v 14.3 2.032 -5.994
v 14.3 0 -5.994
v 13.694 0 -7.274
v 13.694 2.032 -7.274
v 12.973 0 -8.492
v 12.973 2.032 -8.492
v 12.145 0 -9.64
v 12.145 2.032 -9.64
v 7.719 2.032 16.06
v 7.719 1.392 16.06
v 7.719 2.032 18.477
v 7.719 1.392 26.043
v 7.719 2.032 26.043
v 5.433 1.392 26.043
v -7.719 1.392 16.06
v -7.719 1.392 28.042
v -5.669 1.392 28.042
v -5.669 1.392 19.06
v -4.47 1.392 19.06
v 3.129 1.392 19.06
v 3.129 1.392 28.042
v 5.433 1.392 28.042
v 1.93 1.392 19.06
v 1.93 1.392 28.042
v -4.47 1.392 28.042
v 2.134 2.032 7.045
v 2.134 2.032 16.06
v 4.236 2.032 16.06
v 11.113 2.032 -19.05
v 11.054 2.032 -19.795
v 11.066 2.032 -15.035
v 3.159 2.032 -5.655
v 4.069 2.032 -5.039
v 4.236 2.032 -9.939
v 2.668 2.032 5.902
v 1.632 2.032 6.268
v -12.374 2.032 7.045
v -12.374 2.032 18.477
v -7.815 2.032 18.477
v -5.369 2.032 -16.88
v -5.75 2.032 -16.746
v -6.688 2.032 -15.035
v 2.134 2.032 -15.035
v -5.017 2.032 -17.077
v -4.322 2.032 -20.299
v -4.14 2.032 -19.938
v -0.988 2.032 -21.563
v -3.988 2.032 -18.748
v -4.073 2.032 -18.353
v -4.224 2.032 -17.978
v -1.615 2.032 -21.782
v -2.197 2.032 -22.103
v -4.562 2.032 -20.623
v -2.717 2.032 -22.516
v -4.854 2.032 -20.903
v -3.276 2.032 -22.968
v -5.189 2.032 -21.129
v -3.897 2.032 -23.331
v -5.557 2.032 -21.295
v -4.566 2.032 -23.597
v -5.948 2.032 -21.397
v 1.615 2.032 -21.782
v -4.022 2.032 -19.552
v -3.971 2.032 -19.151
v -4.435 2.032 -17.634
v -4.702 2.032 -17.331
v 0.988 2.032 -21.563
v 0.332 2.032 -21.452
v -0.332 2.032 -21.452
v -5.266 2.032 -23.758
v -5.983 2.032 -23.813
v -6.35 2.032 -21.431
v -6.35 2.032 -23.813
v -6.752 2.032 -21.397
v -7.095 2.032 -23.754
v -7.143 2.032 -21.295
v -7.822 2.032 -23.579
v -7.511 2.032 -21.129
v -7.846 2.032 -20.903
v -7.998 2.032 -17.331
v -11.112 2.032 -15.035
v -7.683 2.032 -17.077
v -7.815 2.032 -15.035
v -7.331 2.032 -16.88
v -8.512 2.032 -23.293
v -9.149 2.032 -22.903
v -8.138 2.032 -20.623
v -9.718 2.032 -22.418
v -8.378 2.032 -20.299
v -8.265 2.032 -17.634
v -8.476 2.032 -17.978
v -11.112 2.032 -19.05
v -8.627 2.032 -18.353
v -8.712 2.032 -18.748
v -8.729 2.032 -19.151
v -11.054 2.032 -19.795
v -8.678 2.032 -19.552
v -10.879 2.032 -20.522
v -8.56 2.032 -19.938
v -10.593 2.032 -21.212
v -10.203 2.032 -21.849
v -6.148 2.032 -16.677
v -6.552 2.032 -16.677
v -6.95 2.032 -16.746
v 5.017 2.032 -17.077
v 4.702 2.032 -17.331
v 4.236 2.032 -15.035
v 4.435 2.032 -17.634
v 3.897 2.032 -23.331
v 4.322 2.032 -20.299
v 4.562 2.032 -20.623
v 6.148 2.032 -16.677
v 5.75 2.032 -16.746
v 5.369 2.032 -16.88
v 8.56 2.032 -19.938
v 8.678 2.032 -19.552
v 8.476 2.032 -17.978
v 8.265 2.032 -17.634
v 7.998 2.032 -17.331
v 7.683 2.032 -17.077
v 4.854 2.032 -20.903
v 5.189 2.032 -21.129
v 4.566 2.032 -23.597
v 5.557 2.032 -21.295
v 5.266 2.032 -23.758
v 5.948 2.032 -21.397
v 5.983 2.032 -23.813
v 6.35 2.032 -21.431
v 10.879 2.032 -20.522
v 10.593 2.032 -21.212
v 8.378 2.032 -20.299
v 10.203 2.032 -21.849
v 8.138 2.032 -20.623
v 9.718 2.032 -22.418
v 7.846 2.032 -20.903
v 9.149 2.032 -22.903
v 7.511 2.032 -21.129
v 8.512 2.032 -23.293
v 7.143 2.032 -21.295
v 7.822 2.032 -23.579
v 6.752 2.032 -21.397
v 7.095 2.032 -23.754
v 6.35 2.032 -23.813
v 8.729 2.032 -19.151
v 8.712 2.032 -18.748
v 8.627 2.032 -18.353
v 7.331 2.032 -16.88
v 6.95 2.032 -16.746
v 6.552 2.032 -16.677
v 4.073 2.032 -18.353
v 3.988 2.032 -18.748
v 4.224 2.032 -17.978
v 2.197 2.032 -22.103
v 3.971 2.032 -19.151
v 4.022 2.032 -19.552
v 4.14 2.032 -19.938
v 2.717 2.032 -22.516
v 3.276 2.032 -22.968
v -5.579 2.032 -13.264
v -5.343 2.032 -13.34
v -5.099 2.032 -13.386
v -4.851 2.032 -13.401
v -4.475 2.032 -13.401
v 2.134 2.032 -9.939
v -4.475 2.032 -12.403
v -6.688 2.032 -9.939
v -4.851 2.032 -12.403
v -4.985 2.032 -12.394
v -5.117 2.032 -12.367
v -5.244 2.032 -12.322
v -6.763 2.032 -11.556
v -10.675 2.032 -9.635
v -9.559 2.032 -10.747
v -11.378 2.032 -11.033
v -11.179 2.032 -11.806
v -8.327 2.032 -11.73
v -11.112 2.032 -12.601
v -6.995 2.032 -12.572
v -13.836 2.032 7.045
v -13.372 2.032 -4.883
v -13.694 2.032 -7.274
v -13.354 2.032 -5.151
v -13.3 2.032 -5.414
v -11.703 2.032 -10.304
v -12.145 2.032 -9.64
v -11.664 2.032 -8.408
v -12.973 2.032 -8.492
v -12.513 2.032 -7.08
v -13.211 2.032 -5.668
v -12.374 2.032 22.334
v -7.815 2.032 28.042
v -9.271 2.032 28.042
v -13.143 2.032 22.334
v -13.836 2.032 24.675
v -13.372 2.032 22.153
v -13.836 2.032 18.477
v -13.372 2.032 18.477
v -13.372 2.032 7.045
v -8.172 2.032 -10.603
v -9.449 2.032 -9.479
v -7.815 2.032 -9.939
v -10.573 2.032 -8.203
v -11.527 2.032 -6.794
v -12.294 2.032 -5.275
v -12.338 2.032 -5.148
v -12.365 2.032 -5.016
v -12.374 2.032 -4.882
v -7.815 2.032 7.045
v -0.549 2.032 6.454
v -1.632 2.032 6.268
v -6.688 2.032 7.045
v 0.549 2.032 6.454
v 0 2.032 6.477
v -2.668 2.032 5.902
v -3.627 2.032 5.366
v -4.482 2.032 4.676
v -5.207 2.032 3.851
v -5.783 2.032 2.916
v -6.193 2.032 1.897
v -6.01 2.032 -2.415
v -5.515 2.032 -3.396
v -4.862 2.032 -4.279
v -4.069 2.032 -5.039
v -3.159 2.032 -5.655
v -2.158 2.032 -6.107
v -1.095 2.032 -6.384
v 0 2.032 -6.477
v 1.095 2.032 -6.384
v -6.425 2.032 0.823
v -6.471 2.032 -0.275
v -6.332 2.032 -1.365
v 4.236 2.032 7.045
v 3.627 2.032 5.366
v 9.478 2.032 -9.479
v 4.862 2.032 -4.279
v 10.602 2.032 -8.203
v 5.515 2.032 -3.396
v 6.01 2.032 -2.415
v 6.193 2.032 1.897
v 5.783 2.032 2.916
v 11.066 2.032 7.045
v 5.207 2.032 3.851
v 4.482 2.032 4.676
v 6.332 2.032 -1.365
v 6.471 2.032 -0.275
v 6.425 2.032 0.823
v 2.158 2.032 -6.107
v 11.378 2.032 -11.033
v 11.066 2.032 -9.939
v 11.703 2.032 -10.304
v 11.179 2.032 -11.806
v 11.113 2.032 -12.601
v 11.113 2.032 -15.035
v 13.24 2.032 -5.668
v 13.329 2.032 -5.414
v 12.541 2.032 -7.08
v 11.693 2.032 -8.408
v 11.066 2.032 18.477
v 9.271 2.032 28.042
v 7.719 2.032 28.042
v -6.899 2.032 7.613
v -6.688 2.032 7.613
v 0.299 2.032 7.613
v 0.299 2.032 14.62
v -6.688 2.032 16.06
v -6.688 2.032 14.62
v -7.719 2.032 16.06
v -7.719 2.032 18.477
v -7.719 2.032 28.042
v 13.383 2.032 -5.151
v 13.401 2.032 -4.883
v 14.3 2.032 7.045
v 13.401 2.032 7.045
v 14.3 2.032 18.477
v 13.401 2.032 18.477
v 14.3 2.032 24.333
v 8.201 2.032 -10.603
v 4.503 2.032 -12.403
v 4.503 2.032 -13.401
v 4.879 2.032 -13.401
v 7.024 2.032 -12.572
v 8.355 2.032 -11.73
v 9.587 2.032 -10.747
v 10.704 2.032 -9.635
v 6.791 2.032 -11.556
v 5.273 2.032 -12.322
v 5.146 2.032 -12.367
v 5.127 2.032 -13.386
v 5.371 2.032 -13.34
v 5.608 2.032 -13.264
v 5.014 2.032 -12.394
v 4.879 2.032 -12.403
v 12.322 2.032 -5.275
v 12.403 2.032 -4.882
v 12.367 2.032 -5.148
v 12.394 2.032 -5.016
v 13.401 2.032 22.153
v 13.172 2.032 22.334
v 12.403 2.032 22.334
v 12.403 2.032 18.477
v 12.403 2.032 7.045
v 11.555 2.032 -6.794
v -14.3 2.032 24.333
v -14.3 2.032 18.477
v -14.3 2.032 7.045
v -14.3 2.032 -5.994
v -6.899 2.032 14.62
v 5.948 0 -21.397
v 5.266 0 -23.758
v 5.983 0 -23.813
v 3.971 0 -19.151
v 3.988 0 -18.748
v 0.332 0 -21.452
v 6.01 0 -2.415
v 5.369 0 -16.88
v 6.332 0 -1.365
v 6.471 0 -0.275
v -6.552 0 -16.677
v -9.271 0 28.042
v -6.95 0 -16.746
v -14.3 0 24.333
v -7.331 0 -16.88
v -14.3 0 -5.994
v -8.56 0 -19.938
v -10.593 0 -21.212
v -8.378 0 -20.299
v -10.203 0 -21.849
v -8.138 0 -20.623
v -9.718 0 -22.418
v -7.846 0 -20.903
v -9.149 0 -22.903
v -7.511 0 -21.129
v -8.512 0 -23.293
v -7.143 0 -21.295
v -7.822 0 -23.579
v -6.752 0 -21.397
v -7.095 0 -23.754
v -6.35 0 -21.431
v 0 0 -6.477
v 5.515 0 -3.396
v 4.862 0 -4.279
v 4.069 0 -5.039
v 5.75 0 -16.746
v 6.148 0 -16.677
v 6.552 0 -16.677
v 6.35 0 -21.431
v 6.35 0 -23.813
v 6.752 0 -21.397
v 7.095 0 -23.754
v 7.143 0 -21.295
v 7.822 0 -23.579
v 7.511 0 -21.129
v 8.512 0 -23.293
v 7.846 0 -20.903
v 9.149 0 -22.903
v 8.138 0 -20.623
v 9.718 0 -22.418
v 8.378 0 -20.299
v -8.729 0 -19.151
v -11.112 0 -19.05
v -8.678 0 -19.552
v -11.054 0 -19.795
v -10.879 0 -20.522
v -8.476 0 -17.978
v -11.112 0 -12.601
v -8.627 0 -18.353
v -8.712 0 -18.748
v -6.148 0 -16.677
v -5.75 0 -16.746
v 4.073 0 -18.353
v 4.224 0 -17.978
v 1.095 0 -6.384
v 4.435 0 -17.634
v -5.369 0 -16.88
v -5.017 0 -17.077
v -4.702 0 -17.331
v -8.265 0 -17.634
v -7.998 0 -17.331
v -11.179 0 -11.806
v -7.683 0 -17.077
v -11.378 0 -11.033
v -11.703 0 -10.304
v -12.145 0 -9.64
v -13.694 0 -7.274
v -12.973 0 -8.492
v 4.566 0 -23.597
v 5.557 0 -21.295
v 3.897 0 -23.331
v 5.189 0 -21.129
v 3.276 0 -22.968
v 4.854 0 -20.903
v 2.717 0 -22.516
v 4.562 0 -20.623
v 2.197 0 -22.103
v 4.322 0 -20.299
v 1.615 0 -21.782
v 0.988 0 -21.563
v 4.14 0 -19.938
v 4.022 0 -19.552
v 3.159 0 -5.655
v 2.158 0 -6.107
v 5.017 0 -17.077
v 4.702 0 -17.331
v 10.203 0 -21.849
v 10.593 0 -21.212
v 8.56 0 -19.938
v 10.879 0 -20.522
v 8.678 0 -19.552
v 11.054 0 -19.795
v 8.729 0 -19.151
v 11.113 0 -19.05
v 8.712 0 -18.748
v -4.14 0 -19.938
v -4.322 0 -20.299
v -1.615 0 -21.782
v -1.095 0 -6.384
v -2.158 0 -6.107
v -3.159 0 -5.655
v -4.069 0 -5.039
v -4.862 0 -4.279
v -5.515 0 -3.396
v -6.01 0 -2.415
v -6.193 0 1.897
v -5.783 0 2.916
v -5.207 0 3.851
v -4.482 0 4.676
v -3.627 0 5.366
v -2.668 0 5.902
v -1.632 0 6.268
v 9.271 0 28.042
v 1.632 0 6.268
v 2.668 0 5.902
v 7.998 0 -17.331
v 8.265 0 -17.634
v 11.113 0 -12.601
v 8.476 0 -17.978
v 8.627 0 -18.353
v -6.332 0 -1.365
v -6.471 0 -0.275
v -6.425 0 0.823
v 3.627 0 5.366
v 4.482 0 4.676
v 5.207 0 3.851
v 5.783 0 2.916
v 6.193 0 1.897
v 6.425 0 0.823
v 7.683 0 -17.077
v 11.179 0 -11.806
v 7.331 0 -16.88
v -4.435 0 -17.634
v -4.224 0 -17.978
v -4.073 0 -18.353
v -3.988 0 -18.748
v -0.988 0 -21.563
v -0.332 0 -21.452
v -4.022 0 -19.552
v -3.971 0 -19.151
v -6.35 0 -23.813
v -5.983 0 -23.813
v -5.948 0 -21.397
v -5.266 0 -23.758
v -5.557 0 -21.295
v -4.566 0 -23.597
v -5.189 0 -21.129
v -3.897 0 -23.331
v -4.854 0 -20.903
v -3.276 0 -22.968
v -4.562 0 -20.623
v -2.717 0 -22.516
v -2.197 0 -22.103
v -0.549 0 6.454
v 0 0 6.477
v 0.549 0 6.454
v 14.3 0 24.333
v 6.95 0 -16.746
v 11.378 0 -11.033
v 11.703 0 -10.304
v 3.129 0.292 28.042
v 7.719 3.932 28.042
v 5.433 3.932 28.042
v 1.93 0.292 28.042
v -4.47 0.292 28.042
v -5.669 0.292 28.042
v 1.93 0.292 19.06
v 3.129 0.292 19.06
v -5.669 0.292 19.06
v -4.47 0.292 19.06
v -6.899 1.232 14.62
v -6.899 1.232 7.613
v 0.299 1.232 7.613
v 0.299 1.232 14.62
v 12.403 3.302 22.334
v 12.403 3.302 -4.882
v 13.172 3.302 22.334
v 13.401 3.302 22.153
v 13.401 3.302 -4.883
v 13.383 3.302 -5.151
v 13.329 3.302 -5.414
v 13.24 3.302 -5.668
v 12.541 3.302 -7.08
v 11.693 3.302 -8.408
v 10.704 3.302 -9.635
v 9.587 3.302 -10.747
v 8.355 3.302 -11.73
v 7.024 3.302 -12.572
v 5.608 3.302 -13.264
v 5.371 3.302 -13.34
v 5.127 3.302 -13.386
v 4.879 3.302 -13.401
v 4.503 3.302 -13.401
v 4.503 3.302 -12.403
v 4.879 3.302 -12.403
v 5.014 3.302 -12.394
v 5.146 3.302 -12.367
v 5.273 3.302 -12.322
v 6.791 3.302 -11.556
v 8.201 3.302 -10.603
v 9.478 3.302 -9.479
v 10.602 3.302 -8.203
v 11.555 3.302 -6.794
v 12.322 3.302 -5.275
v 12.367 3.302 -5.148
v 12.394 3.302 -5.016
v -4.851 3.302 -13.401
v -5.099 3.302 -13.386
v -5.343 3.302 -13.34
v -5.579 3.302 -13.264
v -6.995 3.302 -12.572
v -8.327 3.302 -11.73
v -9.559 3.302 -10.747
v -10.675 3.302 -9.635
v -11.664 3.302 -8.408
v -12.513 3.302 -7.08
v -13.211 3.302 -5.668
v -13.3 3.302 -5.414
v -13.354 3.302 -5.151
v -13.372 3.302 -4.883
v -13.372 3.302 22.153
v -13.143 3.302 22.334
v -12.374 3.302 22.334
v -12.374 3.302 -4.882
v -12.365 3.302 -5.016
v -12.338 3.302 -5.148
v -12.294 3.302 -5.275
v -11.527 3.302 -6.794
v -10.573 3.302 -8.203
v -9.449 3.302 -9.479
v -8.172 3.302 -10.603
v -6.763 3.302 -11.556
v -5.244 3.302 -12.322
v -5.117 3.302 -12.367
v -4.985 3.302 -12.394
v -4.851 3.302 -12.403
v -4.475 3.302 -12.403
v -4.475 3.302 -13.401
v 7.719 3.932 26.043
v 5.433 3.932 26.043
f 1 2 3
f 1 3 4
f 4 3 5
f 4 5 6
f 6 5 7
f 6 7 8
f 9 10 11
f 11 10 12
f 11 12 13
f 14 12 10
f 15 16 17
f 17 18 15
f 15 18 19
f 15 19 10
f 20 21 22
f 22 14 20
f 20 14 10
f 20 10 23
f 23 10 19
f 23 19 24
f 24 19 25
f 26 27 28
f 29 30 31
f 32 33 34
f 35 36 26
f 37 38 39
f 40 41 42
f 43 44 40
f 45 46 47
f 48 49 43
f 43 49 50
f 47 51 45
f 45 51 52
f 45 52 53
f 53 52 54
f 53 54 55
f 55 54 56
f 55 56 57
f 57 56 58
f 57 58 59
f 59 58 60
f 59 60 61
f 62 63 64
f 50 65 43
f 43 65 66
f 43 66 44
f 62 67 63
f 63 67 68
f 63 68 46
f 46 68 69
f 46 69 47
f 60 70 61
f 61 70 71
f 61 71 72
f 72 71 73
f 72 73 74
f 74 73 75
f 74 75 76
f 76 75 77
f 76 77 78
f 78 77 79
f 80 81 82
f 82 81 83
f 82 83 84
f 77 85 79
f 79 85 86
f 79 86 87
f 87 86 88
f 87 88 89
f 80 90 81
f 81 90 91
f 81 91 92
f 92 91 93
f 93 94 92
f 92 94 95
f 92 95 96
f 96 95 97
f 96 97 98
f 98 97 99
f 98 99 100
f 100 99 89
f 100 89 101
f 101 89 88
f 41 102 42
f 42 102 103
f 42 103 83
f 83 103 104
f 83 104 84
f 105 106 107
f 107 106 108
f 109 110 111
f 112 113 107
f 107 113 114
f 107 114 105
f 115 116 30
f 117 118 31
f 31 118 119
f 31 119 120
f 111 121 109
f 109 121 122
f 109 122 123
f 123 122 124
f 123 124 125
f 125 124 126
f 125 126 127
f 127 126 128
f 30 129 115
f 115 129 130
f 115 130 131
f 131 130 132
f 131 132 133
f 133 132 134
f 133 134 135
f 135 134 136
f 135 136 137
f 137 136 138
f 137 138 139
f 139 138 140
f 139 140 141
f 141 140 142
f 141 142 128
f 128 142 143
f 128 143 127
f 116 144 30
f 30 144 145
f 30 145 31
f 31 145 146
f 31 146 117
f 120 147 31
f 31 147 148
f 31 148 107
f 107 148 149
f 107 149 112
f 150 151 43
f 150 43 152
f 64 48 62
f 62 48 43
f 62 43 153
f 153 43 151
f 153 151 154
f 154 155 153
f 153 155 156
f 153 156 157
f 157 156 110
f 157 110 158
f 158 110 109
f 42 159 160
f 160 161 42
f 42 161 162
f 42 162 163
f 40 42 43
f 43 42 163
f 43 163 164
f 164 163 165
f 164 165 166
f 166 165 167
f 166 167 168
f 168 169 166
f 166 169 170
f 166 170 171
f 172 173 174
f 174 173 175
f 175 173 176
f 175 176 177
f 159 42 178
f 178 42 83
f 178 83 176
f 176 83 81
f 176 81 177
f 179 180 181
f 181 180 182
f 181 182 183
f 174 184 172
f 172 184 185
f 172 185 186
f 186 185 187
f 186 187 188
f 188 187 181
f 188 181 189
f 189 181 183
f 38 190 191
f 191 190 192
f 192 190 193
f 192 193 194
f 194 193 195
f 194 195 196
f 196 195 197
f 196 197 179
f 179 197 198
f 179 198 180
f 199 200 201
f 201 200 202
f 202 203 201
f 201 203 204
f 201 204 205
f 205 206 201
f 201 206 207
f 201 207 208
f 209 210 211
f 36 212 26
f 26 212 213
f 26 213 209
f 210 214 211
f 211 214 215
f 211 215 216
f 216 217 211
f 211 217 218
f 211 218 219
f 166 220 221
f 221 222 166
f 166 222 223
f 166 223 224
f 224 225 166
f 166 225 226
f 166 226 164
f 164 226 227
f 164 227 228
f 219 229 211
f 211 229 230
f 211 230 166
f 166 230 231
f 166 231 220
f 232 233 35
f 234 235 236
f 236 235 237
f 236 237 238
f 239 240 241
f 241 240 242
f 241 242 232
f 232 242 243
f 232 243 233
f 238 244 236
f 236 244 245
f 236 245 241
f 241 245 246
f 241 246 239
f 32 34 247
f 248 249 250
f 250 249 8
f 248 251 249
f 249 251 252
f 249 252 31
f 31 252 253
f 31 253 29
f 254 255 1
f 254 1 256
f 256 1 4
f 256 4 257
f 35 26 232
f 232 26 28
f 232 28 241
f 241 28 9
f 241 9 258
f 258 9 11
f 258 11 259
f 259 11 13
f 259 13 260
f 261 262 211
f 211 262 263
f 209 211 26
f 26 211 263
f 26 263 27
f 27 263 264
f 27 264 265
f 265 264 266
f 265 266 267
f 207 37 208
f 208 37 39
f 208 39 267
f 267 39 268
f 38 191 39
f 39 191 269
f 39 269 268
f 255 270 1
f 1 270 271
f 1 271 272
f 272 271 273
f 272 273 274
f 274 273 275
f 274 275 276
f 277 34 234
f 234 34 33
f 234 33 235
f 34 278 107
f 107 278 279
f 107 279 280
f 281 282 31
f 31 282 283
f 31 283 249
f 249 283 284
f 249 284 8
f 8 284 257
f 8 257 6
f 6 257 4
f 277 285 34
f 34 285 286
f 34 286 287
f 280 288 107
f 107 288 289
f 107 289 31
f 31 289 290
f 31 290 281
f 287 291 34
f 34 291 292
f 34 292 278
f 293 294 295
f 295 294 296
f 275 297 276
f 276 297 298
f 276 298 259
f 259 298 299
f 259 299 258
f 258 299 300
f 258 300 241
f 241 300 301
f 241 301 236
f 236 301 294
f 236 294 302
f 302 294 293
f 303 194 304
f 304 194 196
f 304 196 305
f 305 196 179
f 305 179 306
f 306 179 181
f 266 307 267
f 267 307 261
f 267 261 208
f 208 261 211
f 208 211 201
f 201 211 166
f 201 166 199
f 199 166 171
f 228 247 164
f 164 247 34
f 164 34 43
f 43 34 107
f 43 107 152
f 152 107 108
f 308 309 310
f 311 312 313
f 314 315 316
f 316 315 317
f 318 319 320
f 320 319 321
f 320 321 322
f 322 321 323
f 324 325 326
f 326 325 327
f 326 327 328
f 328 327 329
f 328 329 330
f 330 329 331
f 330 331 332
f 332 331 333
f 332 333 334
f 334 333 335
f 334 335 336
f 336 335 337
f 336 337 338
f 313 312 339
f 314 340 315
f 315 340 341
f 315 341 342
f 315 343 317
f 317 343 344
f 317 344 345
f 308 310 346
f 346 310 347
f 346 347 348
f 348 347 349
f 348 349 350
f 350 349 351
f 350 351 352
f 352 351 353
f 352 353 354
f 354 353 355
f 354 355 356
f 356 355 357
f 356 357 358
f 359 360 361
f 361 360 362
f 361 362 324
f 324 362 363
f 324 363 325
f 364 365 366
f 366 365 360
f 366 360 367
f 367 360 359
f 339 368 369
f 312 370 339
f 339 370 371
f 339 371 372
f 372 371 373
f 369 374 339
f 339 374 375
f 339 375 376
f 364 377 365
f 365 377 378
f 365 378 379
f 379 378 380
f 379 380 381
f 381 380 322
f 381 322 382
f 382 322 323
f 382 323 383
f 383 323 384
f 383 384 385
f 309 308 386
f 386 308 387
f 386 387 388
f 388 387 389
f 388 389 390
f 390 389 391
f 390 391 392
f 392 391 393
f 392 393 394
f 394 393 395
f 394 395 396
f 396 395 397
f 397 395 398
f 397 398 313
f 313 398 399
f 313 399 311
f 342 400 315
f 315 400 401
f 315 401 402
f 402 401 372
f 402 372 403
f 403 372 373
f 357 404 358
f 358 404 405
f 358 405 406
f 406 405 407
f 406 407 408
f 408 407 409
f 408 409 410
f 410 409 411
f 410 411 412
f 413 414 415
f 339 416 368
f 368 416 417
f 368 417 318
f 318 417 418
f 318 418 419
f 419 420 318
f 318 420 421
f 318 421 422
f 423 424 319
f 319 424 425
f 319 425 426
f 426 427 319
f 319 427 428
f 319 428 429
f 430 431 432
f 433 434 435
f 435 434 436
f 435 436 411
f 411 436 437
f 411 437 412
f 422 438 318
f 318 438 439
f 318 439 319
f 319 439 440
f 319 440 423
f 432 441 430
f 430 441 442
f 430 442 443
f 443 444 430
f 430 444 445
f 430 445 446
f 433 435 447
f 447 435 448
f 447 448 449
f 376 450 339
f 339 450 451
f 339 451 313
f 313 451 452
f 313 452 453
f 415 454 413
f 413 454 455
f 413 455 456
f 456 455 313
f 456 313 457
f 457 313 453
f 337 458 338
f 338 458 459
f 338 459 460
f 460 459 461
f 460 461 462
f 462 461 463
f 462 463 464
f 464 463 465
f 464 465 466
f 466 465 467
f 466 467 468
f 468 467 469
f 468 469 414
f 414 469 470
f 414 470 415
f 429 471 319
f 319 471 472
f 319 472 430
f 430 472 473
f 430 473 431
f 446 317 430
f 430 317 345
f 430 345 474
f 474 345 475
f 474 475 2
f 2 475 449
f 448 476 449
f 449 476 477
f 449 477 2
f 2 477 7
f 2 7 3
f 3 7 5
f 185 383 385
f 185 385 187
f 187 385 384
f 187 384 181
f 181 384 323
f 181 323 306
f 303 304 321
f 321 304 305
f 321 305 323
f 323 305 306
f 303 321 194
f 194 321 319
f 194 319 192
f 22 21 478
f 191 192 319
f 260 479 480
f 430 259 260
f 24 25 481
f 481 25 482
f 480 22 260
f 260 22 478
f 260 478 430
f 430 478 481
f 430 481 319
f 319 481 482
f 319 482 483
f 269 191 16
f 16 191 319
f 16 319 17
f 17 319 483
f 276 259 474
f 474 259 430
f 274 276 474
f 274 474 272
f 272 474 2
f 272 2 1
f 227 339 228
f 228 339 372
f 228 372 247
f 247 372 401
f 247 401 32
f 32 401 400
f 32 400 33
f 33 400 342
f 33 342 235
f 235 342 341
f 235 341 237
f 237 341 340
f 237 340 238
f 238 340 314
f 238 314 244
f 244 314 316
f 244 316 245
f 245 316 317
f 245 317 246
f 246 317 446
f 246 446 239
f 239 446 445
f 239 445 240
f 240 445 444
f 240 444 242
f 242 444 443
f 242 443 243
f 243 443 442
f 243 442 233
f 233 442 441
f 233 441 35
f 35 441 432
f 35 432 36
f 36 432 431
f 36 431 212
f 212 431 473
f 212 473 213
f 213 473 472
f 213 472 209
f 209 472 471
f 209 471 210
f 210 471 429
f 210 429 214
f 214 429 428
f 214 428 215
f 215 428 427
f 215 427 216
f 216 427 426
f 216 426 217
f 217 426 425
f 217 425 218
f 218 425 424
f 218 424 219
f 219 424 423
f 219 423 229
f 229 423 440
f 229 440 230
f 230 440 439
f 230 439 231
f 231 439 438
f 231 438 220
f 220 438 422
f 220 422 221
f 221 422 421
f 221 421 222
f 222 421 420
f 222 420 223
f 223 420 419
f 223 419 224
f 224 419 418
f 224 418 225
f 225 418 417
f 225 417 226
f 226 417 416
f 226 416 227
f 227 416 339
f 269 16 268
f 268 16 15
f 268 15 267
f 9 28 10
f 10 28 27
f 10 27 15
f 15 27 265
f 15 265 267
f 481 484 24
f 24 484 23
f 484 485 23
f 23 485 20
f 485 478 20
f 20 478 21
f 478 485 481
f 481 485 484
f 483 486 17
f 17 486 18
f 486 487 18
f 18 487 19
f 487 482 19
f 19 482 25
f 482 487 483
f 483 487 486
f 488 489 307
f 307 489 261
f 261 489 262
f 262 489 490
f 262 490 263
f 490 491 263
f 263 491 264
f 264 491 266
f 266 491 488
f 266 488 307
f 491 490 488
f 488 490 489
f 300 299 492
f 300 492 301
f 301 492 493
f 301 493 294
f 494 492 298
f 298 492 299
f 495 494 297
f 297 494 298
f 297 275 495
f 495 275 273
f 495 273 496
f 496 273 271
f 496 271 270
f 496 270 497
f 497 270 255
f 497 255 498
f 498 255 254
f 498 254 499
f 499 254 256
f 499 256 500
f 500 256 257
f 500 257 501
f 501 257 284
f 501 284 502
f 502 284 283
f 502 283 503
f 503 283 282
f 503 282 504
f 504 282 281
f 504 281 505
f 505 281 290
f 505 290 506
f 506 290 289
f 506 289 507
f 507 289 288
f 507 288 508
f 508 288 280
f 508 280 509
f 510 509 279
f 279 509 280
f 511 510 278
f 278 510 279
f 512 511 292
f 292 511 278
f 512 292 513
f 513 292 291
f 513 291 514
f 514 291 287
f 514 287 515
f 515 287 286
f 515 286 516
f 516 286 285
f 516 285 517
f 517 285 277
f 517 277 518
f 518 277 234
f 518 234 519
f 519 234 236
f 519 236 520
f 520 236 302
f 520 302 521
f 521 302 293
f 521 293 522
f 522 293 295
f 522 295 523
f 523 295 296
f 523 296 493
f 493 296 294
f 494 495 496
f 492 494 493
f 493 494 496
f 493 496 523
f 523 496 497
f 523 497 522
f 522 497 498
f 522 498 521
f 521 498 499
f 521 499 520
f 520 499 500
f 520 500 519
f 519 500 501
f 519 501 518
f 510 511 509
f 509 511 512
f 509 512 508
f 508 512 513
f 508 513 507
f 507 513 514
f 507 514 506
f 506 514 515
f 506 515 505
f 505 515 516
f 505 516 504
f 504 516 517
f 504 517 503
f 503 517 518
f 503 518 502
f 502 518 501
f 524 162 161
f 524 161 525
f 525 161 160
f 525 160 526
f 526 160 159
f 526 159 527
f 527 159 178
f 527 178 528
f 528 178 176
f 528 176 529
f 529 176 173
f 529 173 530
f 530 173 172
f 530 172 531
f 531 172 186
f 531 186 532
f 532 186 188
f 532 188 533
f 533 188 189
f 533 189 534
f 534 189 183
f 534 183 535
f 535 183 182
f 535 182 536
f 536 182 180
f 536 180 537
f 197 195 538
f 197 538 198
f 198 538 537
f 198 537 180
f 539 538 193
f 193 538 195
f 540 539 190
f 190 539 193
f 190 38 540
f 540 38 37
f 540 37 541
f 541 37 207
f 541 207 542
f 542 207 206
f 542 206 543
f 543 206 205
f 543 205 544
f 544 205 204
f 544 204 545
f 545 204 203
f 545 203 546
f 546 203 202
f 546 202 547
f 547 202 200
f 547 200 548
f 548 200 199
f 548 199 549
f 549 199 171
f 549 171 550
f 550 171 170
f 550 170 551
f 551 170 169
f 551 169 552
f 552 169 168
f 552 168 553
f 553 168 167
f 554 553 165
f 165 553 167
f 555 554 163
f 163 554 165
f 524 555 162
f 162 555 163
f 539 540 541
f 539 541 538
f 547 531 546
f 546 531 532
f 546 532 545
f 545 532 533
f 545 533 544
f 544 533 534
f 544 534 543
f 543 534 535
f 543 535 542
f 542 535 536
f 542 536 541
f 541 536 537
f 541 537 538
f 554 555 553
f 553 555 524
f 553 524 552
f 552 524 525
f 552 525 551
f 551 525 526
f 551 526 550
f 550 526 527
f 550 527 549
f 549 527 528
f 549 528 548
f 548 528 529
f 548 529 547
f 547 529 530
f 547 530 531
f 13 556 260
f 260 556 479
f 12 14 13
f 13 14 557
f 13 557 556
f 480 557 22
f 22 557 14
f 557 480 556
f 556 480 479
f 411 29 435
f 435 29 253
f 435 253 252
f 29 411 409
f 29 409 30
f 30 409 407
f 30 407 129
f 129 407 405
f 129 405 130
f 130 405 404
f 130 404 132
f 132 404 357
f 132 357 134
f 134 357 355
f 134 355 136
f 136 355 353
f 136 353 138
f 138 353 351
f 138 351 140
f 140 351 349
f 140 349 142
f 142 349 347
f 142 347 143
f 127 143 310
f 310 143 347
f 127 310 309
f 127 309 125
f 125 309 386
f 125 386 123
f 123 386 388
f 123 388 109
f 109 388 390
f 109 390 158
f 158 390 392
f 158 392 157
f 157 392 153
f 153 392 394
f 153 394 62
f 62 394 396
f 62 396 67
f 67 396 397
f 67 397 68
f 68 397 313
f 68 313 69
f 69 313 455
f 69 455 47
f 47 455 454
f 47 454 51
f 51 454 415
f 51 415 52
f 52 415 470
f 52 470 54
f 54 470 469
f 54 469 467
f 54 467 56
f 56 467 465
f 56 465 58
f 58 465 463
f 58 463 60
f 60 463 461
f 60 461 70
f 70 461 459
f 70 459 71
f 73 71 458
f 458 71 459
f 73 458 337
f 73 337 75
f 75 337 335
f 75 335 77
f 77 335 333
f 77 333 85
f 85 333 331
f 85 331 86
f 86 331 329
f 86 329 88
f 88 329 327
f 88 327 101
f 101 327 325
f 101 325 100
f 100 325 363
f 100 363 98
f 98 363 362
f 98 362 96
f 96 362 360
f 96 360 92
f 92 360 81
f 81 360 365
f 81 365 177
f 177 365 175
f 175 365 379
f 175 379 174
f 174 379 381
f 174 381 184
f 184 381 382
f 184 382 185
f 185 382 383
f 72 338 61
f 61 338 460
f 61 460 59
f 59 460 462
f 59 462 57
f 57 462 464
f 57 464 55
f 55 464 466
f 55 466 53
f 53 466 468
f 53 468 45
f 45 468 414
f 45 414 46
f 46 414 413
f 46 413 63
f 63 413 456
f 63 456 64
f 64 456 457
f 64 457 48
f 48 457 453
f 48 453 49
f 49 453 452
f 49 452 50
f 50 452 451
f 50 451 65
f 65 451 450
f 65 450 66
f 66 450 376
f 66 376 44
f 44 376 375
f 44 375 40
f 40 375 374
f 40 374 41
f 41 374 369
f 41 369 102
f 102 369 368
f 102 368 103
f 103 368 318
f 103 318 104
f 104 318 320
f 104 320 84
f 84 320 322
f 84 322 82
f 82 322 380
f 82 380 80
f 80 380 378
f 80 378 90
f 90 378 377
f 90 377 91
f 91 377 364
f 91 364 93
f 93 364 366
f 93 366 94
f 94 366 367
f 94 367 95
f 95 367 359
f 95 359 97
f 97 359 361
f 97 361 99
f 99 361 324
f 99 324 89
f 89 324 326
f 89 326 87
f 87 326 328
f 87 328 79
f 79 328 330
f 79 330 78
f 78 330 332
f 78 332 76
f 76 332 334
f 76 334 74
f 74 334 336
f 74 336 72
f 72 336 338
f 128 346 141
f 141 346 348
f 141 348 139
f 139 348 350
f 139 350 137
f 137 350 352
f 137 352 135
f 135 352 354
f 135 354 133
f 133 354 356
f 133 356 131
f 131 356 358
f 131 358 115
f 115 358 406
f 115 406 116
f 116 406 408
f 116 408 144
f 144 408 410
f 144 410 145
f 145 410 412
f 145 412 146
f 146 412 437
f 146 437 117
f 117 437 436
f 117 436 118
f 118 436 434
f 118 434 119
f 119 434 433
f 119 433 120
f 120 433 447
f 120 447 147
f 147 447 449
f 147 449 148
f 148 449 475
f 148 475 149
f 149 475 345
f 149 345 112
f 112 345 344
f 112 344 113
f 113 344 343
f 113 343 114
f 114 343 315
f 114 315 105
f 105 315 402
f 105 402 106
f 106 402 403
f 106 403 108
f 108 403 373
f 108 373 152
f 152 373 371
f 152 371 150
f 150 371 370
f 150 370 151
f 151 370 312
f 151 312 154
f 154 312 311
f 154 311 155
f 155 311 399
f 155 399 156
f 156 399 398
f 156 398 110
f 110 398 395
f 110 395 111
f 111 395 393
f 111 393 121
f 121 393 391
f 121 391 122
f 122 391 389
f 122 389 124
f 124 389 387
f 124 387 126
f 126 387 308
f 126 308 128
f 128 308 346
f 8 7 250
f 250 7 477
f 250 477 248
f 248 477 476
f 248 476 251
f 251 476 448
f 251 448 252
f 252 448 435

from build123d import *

# Parameters (mm, degrees)
SKETCH1_R           = 6.477
BOSS_EXTRUDE1_DEPTH = 2.032
CUT_EXTRUDE1_DEPTH  = 0.64008
SKETCH3_W           = 1.19888
SKETCH3_H           = 8.98144
CUT_EXTRUDE2_DEPTH  = 1.09982
SKETCH4_W           = 7.19836
SKETCH4_H           = 7.00786
CUT_EXTRUDE3_DEPTH  = 0.8001
BOSS_EXTRUDE2_DEPTH = 1.27
SKETCH6_W           = 2.286
SKETCH6_H           = 1.99898
BOSS_EXTRUDE3_DEPTH = 2.54
SKETCH7_R           = 2.38125
BOSS_EXTRUDE4_DEPTH = 2.032


with BuildPart() as part:
    # Sketch1 → Boss-Extrude1 (new body)
    with BuildSketch(Plane(origin=(0, 0, 0), x_dir=(1, 0, 0), z_dir=(0, 1, 0))):
        with BuildLine():
            Line((-14.3002, 5.9944), (-14.3002, -24.3332))
            Line((-14.3002, -24.3332), (-9.271, -28.0416))
            Line((-9.271, -28.0416), (9.271, -28.0416))
            Line((9.271, -28.0416), (14.3002, -24.3332))
            Line((14.3002, -24.3332), (14.3002, 5.9944))
            ThreePointArc((14.3002, 5.9944), (0, 15.505758653), (-14.3002, 5.9944))
        make_face()
        with Locations(Location((0, 0, 0), (0, 0, 270))):
            Circle(SKETCH1_R, mode=Mode.SUBTRACT)
    extrude(amount=BOSS_EXTRUDE1_DEPTH)

    # Sketch2 → Cut-Extrude1 (cut)
    with BuildSketch(Plane(origin=(0, 2.032, 0), x_dir=(1, 0, 0), z_dir=(0, 1, 0))):
        Polygon((0, -28.0416), (-7.71906, -28.0416), (-7.71906, -16.06042), (7.71906, -16.06042), (7.71906, -28.0416), align=None)
    extrude(amount=-CUT_EXTRUDE1_DEPTH, mode=Mode.SUBTRACT)

    # Sketch3 → Cut-Extrude2 (cut)
    with BuildSketch(Plane(origin=(0, 1.39192, 0), x_dir=(1, 0, 0), z_dir=(0, 1, 0))):
        with Locations((-5.06984, -23.55088)):
            Rectangle(SKETCH3_W, SKETCH3_H)
        with Locations((2.52984, -23.55088)):
            Rectangle(SKETCH3_W, SKETCH3_H)
    extrude(amount=-CUT_EXTRUDE2_DEPTH, mode=Mode.SUBTRACT)

    # Sketch4 → Cut-Extrude3 (cut)
    with BuildSketch(Plane(origin=(0, 2.032, 0), x_dir=(1, 0, 0), z_dir=(0, 1, 0))):
        with Locations((-3.299968, -11.116564)):
            Rectangle(SKETCH4_W, SKETCH4_H)
    extrude(amount=-CUT_EXTRUDE3_DEPTH, mode=Mode.SUBTRACT)

    # Sketch5 → Boss-Extrude2 (add)
    with BuildSketch(Plane(origin=(0, 2.032, 0), x_dir=(1, 0, 0), z_dir=(0, 1, 0))):
        with BuildLine():
            Line((12.40282, -22.33422), (13.171678, -22.33422))
            Line((13.171678, -22.33422), (13.40104, -22.152864))
            Line((13.40104, -22.152864), (13.40104, 4.882896))
            ThreePointArc((13.40104, 4.882896), (13.360125716, 5.283490726), (13.23975, 5.667756))
            ThreePointArc((13.23975, 5.667756), (10.160746855, 10.20631074), (5.608066, 13.264388))
            ThreePointArc((5.608066, 13.264388), (5.250053957, 13.366581837), (4.87934, 13.40104))
            Line((4.87934, 13.40104), (4.50342, 13.40104))
            Line((4.50342, 13.40104), (4.50342, 12.40282))
            Line((4.50342, 12.40282), (4.87934, 12.40282))
            ThreePointArc((4.87934, 12.40282), (5.080028543, 12.382451063), (5.272532, 12.322175))
            ThreePointArc((5.272532, 12.322175), (9.477779109, 9.479294357), (12.322175, 5.275072))
            ThreePointArc((12.322175, 5.275072), (12.382451063, 5.082568543), (12.40282, 4.88188))
            Line((12.40282, 4.88188), (12.40282, -22.33422))
        make_face()
        with BuildLine():
            Line((-4.850750436, 13.40104), (-4.474830436, 13.40104))
            Line((-4.474830436, 13.40104), (-4.474830436, 12.40282))
            Line((-4.474830436, 12.40282), (-4.850750436, 12.40282))
            ThreePointArc((-4.850750436, 12.40282), (-5.051438979, 12.382451063), (-5.243942436, 12.322175))
            ThreePointArc((-5.243942436, 12.322175), (-9.449189546, 9.479294357), (-12.293585436, 5.275072))
            ThreePointArc((-12.293585436, 5.275072), (-12.353861499, 5.082568543), (-12.374230436, 4.88188))
            Line((-12.374230436, 4.88188), (-12.374230436, -22.33422))
            Line((-12.374230436, -22.33422), (-13.143088436, -22.33422))
            Line((-13.143088436, -22.33422), (-13.372450436, -22.152864))
            Line((-13.372450436, -22.152864), (-13.372450436, 4.882896))
            ThreePointArc((-13.372450436, 4.882896), (-13.331536152, 5.283490726), (-13.211160436, 5.667756))
            ThreePointArc((-13.211160436, 5.667756), (-10.132157291, 10.20631074), (-5.579476436, 13.264388))
            ThreePointArc((-5.579476436, 13.264388), (-5.221464393, 13.366581837), (-4.850750436, 13.40104))
        make_face()
    extrude(amount=BOSS_EXTRUDE2_DEPTH)

    # Sketch6 → Boss-Extrude3 (add)
    with BuildSketch(Plane(origin=(0, 1.39192, 0), x_dir=(1, 0, 0), z_dir=(0, 1, 0))):
        with Locations((6.57606, -27.04211)):
            Rectangle(SKETCH6_W, SKETCH6_H)
    extrude(amount=BOSS_EXTRUDE3_DEPTH)

    # Sketch7 → Boss-Extrude4 (add)
    with BuildSketch(Plane.XZ):
        with BuildLine():
            ThreePointArc((-12.144798566, -9.640146223), (-11.377973728, -11.033206497), (-11.1125, -12.601058837))
            Line((-11.1125, -12.601058837), (-11.1125, -19.05))
            ThreePointArc((-11.1125, -19.05), (-9.717596045, -22.417596045), (-6.35, -23.8125))
            Line((-6.35, -23.8125), (-5.983425441, -23.8125))
            ThreePointArc((-5.983425441, -23.8125), (-4.22646321, -23.476566386), (-2.717363519, -22.516157205))
            ThreePointArc((-2.717363519, -22.516157205), (0, -21.4376), (2.717363519, -22.516157205))
            ThreePointArc((2.717363519, -22.516157205), (4.22646321, -23.476566386), (5.983425441, -23.8125))
            Line((5.983425441, -23.8125), (6.35, -23.8125))
            ThreePointArc((6.35, -23.8125), (9.717596045, -22.417596045), (11.1125, -19.05))
            Line((11.1125, -19.05), (11.1125, -12.601058837))
            ThreePointArc((11.1125, -12.601058837), (11.377973728, -11.033206497), (12.144798566, -9.640146223))
            ThreePointArc((12.144798566, -9.640146223), (0, -15.505758653), (-12.144798566, -9.640146223))
        make_face()
        with Locations(Location((-6.35, -19.05, 0), (0, 0, 270))):
            Circle(SKETCH7_R, mode=Mode.SUBTRACT)
        with Locations(Location((6.35, -19.05, 0), (0, 0, 270))):
            Circle(SKETCH7_R, mode=Mode.SUBTRACT)
    extrude(amount=-BOSS_EXTRUDE4_DEPTH)


solid = part.part
